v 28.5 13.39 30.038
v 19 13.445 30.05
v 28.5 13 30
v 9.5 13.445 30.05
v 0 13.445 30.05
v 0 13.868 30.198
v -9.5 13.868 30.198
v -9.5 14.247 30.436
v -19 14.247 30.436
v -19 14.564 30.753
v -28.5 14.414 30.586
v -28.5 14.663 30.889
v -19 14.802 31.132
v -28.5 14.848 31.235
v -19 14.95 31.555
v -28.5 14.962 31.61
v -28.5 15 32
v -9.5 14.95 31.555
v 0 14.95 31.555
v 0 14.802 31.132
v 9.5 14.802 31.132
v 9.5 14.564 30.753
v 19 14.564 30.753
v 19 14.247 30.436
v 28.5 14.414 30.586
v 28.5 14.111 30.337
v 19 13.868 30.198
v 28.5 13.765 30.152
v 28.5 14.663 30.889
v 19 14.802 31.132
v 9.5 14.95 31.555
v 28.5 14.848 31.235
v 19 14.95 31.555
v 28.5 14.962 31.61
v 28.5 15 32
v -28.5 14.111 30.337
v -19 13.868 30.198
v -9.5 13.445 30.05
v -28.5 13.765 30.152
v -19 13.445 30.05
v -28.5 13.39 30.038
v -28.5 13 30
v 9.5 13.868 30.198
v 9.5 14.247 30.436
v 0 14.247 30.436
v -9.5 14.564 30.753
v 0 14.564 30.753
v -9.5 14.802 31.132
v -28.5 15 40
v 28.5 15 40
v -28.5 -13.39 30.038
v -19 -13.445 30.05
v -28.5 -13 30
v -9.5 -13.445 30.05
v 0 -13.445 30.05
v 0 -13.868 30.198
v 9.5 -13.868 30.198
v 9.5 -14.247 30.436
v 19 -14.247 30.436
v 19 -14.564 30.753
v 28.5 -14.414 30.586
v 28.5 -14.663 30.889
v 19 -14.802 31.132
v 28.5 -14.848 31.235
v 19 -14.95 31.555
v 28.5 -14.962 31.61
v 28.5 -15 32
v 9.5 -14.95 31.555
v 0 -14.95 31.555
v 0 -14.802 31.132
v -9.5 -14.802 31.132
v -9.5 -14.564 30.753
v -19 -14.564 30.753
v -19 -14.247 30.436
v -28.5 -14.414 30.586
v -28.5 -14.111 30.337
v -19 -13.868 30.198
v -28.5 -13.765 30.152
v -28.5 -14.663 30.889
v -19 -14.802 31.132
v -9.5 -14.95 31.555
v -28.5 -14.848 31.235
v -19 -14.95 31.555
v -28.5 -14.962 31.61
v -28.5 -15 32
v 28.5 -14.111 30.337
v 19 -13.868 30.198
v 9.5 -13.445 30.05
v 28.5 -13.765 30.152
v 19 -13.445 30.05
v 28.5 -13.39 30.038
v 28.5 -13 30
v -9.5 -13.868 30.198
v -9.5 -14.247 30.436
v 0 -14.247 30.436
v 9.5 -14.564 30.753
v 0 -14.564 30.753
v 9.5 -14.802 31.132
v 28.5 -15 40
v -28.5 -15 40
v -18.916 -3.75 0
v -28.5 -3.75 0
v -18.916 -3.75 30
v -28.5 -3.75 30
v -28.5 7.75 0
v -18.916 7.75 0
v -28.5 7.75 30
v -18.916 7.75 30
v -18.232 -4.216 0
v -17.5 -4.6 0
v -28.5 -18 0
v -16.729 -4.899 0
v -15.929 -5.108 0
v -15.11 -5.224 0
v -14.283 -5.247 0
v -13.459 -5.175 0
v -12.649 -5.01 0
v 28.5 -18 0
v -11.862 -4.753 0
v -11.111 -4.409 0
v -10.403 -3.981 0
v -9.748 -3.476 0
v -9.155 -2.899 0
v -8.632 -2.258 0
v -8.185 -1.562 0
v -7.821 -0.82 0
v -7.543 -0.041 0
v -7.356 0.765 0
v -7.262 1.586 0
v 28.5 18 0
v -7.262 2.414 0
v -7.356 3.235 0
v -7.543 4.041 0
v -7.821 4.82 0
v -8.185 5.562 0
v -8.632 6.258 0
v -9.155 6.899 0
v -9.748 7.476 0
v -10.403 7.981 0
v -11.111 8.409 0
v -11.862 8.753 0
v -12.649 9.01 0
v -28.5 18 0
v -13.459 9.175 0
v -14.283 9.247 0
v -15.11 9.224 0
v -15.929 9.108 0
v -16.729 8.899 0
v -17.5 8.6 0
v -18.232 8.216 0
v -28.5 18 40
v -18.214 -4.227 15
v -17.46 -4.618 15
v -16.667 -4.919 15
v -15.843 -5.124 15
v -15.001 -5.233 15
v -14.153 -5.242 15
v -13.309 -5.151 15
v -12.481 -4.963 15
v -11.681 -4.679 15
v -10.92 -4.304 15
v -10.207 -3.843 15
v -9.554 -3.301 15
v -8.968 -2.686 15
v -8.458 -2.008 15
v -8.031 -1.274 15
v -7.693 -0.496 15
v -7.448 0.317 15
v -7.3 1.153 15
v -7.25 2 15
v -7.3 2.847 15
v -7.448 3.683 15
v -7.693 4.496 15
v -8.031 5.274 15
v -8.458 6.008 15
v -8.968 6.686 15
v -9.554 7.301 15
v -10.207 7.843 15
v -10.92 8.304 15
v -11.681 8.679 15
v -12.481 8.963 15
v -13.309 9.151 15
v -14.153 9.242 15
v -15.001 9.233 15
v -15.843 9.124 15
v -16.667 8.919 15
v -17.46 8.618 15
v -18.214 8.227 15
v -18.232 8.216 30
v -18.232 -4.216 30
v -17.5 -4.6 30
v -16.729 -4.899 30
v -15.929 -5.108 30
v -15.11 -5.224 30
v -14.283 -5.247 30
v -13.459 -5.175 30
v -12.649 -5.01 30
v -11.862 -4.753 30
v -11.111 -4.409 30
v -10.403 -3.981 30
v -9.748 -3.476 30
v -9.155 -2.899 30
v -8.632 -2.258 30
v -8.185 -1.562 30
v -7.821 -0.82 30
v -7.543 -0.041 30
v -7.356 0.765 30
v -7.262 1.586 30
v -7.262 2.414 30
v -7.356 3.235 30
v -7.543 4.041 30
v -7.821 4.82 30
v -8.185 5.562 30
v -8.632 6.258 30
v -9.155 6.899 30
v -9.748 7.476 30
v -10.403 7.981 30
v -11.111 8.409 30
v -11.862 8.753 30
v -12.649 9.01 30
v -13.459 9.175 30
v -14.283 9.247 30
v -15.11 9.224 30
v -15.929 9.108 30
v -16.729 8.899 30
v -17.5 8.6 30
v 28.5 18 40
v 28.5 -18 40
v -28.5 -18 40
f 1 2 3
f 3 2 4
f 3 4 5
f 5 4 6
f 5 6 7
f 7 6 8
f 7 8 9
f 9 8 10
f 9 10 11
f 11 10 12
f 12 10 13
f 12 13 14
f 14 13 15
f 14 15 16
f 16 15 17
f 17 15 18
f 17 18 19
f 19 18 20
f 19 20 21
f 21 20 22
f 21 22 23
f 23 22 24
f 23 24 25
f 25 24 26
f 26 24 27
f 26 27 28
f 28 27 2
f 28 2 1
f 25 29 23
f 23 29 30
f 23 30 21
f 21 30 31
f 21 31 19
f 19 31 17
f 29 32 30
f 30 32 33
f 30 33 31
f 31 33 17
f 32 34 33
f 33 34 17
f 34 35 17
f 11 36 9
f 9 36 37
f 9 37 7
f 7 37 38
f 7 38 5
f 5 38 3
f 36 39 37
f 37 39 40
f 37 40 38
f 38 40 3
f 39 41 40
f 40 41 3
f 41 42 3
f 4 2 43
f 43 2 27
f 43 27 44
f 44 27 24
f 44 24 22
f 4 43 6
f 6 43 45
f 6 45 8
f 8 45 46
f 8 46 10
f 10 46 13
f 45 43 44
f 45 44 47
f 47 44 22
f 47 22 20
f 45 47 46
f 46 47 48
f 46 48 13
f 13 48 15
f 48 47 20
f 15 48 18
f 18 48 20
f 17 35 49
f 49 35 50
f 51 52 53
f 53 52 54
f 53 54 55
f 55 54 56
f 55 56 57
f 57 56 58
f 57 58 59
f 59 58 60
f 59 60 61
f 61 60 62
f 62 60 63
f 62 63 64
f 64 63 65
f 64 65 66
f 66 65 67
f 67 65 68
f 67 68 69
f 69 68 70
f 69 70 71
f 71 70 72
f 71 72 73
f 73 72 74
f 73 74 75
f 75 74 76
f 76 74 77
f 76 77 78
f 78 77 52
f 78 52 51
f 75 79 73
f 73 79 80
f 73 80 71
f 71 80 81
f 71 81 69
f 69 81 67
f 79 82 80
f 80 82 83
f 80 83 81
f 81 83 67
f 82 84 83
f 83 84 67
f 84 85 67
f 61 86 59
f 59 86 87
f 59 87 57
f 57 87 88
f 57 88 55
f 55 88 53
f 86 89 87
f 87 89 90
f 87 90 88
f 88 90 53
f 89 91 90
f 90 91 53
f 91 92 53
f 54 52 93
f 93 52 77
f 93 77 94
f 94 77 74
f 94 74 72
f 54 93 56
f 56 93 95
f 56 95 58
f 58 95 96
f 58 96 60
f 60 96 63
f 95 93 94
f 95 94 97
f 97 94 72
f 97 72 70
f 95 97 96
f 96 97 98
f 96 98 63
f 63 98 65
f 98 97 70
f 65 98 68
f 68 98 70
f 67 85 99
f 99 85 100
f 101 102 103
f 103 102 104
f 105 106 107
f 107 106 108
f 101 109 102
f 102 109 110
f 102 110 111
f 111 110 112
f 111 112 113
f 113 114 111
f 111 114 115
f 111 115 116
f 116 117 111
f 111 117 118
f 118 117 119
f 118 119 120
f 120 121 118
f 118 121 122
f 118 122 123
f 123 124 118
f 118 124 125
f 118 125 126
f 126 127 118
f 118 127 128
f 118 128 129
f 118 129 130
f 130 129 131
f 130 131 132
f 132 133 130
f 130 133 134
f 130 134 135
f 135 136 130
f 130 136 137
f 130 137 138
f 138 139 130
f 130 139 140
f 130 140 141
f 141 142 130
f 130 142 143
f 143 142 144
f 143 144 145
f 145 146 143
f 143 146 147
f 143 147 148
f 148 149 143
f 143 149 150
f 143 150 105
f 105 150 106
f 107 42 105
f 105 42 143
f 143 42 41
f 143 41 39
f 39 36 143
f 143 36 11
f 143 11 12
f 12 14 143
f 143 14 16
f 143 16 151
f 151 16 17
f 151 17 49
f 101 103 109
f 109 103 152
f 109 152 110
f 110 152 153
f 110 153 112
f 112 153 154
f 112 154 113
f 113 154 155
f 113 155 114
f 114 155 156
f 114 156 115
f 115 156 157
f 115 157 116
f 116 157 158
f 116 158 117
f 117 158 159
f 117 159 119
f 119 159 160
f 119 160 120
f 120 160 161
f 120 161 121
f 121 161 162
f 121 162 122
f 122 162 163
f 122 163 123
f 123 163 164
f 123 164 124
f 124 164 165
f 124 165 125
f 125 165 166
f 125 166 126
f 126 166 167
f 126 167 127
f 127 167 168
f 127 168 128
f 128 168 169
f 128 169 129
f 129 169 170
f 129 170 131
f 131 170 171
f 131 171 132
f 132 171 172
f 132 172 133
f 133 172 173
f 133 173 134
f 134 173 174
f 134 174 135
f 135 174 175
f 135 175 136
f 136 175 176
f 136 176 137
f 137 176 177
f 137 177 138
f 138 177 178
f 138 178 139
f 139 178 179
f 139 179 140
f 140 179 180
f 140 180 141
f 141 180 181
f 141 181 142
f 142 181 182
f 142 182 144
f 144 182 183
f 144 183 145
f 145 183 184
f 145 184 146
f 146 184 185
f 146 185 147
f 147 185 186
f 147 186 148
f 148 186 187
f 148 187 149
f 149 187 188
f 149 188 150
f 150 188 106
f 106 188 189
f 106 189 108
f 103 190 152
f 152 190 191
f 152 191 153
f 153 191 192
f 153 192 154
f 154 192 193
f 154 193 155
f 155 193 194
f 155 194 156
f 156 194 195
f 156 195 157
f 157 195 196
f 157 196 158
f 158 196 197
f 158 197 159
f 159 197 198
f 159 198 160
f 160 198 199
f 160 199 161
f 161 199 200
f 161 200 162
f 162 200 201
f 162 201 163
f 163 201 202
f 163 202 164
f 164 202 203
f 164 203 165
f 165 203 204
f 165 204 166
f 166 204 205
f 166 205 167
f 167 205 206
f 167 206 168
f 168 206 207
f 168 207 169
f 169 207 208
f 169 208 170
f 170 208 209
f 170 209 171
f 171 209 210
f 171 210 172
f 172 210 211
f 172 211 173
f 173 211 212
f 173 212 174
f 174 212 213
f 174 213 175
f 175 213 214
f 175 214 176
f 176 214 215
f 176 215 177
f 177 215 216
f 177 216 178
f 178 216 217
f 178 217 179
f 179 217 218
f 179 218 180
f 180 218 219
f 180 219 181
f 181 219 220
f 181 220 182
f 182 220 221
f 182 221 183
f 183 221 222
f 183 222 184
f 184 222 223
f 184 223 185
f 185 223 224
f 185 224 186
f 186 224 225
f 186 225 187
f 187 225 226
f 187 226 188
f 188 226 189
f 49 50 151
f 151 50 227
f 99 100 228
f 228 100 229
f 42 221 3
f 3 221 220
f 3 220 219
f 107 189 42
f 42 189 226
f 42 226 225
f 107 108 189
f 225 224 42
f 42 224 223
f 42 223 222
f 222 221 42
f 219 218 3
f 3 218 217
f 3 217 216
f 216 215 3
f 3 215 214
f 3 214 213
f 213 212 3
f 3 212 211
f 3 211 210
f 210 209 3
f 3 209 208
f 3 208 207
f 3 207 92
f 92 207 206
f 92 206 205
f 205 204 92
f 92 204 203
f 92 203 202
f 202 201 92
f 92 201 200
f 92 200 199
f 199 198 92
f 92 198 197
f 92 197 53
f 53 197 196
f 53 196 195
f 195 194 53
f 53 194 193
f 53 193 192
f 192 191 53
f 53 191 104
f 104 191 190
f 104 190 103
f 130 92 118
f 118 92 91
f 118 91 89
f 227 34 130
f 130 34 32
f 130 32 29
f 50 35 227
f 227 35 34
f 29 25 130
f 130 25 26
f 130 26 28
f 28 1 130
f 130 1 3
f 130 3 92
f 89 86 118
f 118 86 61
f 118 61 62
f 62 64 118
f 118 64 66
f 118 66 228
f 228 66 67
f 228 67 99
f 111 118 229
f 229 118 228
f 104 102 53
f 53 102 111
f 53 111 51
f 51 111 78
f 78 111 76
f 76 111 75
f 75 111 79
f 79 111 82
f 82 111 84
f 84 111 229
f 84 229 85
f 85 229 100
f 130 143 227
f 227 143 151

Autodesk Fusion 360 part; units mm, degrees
sketch "Sketch1" plane through (0, 0, 0) normal (0, 0, 1) x (1, 0, 0)
  line L0 (28.5, -18) -> (-28.5, -18)
  line L1 (-28.5, -18) -> (-28.5, 18)
  line L2 (-28.5, 18) -> (28.5, 18)
  line L3 (28.5, 18) -> (28.5, -18)
  line L4 (28.5, -18) -> (-28.5, 18) construction
  line L5 (-28.5, -18) -> (28.5, 18) construction
  dimension "d1" = 57
  dimension "d2" = 36
extrude "Extrude1" add sketch "Sketch1" along normal blind 30
sketch "Sketch2" plane through (0, 0, 30) normal (0, 0, 1) x (-1, 0, 0)
  line L0 (-28.5, -18) -> (28.5, -18)
  line L1 (28.5, -18) -> (28.5, 18)
  line L2 (28.5, 18) -> (-28.5, 18)
  line L3 (-28.5, 18) -> (-28.5, -18)
  line L4 (28.5, 18) -> (28.5, 15)
  line L5 (-28.5, 15) -> (28.5, 15)
  line L6 (-28.5, 15) -> (-28.5, 18)
  line L7 (-28.5, 18) -> (28.5, 18)
  dimension "d7" = 3
extrude "Extrude2" add sketch "Sketch2" along normal blind 10 contours L1 L2 L3 L4 L5 L6 L7
mirror "Mirror1" about plane through (0, 0, 0) normal (0, 1, 0) of "Extrude2"
sketch "Sketch3" plane through (0, 0, 30) normal (0, 0, 1) x (-1, 0, 0)
  line L0 (-28.5, -15) -> (28.5, -15)
  line L1 (28.5, -15) -> (28.5, 15)
  line L2 (28.5, 15) -> (-28.5, 15)
  line L3 (-28.5, 15) -> (-28.5, -15)
  circle A0 centre (14.5, -2) radius 7.25
  dimension "d10" = 14.5
  dimension "d11" = 14
  dimension "d15" = 17
  dimension "d18" = 13
extrude "Extrude3" cut sketch "Sketch3" against normal through all contours A0
sketch "Sketch4" plane through (0, 0, 30) normal (0, 0, 1) x (-1, 0, 0)
  circle A0 centre (14.5, -2) radius 7.25
  line L0 (-28.5, -15) -> (28.5, -15)
  line L1 (28.5, -15) -> (28.5, 15)
  line L2 (28.5, 15) -> (-28.5, 15)
  line L3 (-28.5, 15) -> (-28.5, -15)
  line L4 (18.9159, -7.75) -> (28.5, -7.75)
  line L5 (28.5, -7.75) -> (28.5, 3.75)
  line L6 (18.9159, 3.75) -> (18.9159, -7.75)
  line L7 (18.9159, 3.75) -> (28.5, 3.75)
  dimension "d13" = 11.5
extrude "Extrude4" cut sketch "Sketch4" against normal through all contours A0 L1 L4 L5 L7
fillet "Fillet1" radius 2 2 edges at (0, -15, 30) (0, 15, 30)
